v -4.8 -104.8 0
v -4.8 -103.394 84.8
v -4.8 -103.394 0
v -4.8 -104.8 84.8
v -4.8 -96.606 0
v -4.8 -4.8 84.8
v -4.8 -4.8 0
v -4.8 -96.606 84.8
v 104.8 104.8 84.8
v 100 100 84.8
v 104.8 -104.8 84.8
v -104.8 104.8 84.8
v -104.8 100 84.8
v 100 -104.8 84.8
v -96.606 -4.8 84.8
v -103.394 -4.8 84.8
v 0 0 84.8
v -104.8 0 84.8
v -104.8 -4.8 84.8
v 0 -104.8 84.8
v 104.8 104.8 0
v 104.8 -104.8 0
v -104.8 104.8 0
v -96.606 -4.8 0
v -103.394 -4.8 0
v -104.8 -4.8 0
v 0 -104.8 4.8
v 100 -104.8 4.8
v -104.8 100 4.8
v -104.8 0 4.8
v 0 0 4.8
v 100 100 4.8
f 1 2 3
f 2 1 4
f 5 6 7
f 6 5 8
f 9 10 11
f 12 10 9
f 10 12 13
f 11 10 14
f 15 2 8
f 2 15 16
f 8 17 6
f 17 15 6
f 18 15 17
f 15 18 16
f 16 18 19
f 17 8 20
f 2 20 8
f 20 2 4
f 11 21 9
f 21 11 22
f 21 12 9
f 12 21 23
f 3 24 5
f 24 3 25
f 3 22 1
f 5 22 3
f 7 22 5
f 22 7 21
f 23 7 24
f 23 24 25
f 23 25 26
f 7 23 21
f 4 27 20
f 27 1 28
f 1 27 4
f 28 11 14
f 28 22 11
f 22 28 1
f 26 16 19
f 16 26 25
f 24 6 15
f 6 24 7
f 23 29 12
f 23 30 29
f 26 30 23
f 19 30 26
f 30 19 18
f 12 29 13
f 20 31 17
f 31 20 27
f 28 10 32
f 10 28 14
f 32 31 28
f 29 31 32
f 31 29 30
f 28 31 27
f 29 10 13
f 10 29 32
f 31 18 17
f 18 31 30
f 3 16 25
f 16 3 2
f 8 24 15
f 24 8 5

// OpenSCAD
height = 80;
width = 100;
length = 200;
thickness = 0.6 * 8;

clamp(height, thickness, length, width);

module clamp(height, thickness, length, width) {
	angle = 90;

	difference() {
		union() {
			color("red")
			translate([width/2, 0, (thickness+height)/2])
			cube([width + thickness*2, length + thickness*2, thickness+height], center=true);
			
			rotate(angle)
			translate([width/2, 0, (thickness+height)/2])
			cube([width + thickness*2, length + thickness*2, thickness+height], center=true);
		}
		translate([width/2, -(thickness+0.002)/2, thickness])
		translate([0, 0, (height+0.002)/2])
		cube([width, length+(thickness+0.002), height+0.002], center=true);
		
		rotate(angle)
		translate([width/2, (thickness+0.002)/2, thickness])
		translate([0, 0, (height+0.002)/2])
		cube([width, length+(thickness+0.002), height+0.002], center=true);
	}
	
	c = length - width;
	l = sqrt(c*c*2);
	translate([-c/2-thickness/2, -c/2-thickness/2, (height+thickness)/2]) rotate(-angle/2) cube([l, thickness, height+thickness], center=true);
}
